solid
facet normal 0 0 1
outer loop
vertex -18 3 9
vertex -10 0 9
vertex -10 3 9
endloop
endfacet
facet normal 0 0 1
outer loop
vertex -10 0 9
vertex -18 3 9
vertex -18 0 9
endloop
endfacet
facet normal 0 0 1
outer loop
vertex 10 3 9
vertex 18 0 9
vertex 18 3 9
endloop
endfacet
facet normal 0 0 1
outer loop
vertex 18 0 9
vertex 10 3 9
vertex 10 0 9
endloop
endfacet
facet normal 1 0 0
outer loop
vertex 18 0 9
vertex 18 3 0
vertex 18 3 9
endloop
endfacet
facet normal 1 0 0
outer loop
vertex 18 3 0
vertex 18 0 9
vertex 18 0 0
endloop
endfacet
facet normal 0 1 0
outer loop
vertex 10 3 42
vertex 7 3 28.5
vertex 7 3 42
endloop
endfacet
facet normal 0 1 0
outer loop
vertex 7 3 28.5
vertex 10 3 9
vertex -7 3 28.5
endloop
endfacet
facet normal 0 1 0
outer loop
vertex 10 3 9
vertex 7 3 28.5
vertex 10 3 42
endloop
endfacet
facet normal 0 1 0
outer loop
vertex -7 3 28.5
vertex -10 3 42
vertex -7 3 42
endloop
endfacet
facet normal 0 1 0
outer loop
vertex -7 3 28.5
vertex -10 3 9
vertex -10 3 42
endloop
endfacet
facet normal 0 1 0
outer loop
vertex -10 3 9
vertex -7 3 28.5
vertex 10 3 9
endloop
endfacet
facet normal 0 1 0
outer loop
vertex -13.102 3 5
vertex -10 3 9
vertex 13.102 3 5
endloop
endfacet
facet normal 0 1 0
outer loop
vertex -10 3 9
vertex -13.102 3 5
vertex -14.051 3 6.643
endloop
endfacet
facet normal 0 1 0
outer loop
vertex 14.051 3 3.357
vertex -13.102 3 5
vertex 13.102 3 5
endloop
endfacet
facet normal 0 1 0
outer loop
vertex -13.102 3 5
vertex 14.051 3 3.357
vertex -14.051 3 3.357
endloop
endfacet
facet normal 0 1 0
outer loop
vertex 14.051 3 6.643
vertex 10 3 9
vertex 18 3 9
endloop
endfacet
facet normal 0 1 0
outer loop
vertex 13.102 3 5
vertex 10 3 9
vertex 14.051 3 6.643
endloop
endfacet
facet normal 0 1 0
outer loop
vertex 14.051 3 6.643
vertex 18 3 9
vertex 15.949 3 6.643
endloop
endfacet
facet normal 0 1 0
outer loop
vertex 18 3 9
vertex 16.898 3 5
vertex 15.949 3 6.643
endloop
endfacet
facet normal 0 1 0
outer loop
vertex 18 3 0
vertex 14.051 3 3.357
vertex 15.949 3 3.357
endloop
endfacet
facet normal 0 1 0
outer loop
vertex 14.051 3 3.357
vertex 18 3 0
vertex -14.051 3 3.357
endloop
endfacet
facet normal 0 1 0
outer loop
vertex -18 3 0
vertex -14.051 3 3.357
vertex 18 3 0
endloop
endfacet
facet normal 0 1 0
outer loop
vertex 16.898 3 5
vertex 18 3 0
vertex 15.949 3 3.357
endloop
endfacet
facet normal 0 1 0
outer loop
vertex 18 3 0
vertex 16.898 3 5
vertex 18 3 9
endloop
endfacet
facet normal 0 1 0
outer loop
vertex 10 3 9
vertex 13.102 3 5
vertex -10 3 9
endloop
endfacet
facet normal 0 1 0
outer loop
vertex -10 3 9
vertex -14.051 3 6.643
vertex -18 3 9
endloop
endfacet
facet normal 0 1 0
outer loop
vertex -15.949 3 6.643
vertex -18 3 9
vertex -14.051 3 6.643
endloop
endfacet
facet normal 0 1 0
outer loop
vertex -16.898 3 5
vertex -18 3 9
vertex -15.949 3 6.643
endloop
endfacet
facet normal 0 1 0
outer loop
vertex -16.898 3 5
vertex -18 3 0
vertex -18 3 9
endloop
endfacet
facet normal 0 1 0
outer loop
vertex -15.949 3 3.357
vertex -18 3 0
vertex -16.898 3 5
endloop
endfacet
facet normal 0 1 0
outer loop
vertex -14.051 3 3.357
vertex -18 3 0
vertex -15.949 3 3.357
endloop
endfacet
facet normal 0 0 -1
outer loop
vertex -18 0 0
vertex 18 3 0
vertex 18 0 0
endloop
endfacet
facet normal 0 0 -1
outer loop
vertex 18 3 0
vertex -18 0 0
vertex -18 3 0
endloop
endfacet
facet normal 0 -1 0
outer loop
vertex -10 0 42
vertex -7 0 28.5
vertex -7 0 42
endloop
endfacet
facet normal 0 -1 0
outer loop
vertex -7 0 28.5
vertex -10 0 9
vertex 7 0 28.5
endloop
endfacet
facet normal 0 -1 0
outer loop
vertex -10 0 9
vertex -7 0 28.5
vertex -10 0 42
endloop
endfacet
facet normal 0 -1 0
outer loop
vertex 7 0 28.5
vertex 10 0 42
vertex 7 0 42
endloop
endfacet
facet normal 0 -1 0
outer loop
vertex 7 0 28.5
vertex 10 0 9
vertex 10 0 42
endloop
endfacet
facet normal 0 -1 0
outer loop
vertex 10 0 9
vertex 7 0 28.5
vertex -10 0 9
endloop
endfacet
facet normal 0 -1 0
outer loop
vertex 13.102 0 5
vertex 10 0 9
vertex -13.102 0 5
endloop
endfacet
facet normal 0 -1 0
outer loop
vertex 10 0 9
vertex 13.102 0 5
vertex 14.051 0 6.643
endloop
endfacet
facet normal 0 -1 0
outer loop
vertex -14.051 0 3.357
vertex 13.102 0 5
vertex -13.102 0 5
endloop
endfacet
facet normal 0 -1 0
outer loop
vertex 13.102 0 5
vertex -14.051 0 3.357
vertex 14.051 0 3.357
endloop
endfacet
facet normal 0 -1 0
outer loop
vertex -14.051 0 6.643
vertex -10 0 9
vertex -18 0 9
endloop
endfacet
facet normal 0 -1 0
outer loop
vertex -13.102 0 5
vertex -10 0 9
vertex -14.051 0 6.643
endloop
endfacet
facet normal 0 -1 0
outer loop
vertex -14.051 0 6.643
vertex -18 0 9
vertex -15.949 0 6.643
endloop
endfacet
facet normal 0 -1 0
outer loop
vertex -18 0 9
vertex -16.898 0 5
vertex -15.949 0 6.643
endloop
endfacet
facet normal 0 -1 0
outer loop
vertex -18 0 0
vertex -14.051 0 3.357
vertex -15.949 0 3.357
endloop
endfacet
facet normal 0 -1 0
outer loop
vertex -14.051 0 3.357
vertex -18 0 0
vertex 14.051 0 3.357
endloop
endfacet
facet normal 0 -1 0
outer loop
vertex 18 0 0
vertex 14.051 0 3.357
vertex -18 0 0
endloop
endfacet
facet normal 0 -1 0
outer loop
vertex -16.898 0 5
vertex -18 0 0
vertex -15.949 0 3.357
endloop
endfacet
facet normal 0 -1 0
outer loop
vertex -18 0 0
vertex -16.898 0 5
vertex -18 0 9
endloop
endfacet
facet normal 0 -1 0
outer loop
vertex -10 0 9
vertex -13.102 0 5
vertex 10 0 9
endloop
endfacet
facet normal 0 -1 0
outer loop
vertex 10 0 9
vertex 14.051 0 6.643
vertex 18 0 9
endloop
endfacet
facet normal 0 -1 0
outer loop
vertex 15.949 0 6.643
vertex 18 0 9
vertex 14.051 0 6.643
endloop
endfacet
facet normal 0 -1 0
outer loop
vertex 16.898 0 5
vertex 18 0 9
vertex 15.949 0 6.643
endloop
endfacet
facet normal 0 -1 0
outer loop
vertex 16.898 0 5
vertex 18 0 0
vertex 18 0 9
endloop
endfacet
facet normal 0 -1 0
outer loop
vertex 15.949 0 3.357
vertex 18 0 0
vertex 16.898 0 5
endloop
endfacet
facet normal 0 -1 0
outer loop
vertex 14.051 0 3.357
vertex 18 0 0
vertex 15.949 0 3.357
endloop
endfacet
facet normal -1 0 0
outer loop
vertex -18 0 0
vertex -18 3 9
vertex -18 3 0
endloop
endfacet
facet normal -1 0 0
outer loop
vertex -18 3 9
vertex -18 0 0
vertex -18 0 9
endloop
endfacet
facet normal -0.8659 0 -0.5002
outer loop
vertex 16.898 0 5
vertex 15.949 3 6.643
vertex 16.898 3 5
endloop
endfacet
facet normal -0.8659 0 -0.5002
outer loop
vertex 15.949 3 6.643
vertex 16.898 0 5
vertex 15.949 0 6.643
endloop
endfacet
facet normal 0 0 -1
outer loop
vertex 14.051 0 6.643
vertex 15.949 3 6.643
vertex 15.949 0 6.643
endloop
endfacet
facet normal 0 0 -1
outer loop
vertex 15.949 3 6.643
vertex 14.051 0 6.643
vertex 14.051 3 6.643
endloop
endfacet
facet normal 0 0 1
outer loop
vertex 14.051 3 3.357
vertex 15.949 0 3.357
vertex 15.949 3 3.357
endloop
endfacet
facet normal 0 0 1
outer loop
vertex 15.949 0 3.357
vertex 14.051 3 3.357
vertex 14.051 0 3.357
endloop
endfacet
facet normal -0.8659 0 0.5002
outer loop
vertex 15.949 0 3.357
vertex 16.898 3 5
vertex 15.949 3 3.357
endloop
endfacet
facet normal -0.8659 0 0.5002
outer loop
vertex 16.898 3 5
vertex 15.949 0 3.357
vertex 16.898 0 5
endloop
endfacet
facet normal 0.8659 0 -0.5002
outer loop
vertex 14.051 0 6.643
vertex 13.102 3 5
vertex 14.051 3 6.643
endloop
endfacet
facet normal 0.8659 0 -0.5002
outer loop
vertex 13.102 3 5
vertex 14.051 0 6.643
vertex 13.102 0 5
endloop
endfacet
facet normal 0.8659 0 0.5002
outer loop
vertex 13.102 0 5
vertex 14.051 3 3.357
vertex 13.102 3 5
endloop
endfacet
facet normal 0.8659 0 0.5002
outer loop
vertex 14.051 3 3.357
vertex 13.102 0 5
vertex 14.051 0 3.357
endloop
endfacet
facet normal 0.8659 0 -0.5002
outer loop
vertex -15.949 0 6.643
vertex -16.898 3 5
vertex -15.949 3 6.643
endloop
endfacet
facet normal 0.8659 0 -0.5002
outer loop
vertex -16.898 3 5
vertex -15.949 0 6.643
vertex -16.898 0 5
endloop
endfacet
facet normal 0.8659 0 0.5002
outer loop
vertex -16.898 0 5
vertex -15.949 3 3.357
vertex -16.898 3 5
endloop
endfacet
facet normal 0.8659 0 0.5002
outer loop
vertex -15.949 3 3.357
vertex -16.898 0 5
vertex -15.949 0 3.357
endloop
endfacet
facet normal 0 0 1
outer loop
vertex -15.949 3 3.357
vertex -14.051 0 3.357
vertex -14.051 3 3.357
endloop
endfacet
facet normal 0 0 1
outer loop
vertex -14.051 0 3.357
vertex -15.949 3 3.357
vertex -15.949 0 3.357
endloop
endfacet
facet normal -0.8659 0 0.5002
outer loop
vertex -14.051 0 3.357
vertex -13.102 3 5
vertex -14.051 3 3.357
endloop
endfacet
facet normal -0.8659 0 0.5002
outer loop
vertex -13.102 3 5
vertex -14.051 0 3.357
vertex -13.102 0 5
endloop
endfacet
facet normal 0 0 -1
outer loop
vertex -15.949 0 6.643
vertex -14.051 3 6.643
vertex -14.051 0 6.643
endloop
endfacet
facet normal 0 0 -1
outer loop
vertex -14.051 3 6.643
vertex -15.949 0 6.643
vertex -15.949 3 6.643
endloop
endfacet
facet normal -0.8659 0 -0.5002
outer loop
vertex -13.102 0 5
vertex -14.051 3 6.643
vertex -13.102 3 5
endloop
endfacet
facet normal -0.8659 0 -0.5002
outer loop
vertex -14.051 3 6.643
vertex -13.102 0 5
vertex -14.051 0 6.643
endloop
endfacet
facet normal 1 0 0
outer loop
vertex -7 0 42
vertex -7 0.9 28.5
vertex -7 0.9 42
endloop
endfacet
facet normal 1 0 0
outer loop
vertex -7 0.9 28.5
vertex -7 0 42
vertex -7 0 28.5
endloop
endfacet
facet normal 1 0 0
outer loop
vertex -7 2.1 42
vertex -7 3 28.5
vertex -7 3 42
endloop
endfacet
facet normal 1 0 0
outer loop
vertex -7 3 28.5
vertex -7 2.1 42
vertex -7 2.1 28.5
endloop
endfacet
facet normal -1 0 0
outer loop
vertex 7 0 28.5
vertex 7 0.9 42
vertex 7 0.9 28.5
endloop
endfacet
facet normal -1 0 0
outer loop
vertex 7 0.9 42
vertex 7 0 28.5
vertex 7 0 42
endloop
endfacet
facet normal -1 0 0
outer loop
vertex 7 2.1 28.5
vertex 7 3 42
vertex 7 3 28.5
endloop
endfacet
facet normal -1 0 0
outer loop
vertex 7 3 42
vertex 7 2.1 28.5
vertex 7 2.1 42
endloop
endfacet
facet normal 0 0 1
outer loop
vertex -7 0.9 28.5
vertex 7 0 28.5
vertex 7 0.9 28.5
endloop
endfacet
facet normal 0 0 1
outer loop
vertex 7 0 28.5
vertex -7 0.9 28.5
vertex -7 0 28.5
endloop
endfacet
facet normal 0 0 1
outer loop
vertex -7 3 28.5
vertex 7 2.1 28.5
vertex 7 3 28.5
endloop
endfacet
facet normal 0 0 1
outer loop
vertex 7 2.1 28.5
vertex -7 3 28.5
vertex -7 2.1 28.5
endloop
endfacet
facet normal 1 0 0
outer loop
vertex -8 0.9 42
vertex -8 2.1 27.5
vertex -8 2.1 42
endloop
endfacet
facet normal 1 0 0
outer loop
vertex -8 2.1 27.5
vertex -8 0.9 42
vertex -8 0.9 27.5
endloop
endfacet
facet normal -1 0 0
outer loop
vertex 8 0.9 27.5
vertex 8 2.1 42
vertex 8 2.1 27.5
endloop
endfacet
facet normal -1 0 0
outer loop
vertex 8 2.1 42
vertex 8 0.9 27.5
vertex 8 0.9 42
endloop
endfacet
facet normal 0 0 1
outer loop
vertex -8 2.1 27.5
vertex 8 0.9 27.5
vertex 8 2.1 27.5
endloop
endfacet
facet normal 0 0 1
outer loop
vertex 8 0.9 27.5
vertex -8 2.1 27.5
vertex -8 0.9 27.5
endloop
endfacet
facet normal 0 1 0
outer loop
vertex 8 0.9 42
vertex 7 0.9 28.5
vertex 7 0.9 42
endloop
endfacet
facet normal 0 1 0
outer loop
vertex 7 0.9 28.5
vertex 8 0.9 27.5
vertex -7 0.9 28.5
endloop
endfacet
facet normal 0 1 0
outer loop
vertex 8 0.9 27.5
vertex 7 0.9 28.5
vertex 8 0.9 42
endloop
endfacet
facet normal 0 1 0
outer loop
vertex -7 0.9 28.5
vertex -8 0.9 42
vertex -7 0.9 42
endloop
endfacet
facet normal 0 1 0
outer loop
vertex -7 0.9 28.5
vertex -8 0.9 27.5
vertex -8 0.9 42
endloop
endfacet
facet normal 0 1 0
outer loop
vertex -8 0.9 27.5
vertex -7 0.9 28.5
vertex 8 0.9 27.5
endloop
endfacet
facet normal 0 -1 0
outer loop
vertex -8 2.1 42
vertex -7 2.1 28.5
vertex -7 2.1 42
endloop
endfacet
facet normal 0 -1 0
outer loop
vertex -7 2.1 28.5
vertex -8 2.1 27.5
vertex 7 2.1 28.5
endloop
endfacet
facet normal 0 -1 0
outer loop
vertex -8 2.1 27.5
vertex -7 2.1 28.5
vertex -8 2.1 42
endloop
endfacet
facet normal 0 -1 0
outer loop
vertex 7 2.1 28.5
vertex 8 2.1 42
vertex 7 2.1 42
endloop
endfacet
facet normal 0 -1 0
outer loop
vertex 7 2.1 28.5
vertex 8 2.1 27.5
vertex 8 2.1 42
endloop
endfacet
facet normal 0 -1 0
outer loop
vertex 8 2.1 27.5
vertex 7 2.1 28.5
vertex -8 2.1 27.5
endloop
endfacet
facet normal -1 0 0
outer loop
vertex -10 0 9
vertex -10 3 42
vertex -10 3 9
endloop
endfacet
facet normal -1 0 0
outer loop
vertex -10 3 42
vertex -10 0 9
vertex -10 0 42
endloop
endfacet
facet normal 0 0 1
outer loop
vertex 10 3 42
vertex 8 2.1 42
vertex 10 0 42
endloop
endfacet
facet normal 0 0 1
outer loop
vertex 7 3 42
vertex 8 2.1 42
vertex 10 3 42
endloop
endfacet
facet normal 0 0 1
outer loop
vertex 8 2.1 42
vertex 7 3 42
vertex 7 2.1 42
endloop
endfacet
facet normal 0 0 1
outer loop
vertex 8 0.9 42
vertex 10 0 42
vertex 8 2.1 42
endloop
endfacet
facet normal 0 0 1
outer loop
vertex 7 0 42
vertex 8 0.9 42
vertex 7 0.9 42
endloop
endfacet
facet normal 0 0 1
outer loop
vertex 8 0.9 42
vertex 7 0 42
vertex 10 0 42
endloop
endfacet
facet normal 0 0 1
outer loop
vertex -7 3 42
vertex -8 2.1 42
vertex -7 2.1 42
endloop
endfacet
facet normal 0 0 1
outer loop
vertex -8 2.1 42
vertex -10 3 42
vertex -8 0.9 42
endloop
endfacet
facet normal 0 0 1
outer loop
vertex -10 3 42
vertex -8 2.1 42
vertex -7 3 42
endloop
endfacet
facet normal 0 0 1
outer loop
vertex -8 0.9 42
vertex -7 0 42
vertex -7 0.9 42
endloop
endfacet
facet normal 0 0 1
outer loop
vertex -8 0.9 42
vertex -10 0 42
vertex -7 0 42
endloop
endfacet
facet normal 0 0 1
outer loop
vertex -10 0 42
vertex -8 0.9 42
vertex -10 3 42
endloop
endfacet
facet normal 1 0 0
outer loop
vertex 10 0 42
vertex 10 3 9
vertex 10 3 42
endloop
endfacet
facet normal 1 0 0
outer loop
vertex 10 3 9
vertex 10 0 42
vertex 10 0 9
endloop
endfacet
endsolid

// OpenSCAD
// file: parameters.scad
// Generated by prepare.py from the versioned interface contract.
v2_case_width=118;
v2_case_height=196;
v2_case_depth=77;
v2_case_bottom=-11;
v2_button_x=109.4;
v2_button_ys=[22,42];
v2_button_fastener_x=99.5;
v2_controller_rear_x=111.8;
// file: utilities.scad
function mm_to_cells(mm, pitch) = mm / pitch;

module rounded_cube(size, radius) {
    hull() {
        cornercopy(x_distance=size.x/2-radius, y_distance=size.y/2-radius)
        cylinder(h=size.z, r=radius);
    }
}

module cornercopy(x_distance, y_distance) {
    for (xx = [-1, 1], yy=[-1, 1]) {
        xpos = xx * x_distance;
        ypos = yy * y_distance;
        translate([xpos, ypos, 0])
        children();
    }
}
// main file
use <utilities.scad>;
use <compact_nut_seat.scad>;
include <parameters.scad>;
use <utilities.scad>;
use <fibre_stage_three_legs.scad>;

//translate([0,0,0])rotate([0,0,0])grid_cover();
hold_hieght = 10;
slide_glass_thickness = 0.8;
slide_glass_width = 26;

module grid_cover() {
    l=0.5;//12.5
    difference() {
        difference(){
            union(){
                cube([18,3,hold_hieght-1],center=false);
                mirror([1,0,0]) {
                    cube([18,3,hold_hieght-1],center=false);
                }
            }
        translate([15,0,hold_hieght/2])rotate([90,0,0])cylinder(d=3.3*1.15,h=999, center=true);
        mirror([1,0,0]) {
            translate([15,0,hold_hieght/2])rotate([90,0,0])cylinder(d=3.3*1.15,h=999, center=true);
        }
        }
    }
    difference(){
        translate([0, 1.5, 16-l])difference(){
            translate([0,0,9])cube([20, 3, 35], center = true);
            translate([0, 0, 20]){
                cube([14, 4, 14], center = true);
                #cube([16, 1.2, 16], center = true);
        }
    }
   translate([0, 0, -40])cube([999,999,40],center=true); 
}
}
grid_cover();
